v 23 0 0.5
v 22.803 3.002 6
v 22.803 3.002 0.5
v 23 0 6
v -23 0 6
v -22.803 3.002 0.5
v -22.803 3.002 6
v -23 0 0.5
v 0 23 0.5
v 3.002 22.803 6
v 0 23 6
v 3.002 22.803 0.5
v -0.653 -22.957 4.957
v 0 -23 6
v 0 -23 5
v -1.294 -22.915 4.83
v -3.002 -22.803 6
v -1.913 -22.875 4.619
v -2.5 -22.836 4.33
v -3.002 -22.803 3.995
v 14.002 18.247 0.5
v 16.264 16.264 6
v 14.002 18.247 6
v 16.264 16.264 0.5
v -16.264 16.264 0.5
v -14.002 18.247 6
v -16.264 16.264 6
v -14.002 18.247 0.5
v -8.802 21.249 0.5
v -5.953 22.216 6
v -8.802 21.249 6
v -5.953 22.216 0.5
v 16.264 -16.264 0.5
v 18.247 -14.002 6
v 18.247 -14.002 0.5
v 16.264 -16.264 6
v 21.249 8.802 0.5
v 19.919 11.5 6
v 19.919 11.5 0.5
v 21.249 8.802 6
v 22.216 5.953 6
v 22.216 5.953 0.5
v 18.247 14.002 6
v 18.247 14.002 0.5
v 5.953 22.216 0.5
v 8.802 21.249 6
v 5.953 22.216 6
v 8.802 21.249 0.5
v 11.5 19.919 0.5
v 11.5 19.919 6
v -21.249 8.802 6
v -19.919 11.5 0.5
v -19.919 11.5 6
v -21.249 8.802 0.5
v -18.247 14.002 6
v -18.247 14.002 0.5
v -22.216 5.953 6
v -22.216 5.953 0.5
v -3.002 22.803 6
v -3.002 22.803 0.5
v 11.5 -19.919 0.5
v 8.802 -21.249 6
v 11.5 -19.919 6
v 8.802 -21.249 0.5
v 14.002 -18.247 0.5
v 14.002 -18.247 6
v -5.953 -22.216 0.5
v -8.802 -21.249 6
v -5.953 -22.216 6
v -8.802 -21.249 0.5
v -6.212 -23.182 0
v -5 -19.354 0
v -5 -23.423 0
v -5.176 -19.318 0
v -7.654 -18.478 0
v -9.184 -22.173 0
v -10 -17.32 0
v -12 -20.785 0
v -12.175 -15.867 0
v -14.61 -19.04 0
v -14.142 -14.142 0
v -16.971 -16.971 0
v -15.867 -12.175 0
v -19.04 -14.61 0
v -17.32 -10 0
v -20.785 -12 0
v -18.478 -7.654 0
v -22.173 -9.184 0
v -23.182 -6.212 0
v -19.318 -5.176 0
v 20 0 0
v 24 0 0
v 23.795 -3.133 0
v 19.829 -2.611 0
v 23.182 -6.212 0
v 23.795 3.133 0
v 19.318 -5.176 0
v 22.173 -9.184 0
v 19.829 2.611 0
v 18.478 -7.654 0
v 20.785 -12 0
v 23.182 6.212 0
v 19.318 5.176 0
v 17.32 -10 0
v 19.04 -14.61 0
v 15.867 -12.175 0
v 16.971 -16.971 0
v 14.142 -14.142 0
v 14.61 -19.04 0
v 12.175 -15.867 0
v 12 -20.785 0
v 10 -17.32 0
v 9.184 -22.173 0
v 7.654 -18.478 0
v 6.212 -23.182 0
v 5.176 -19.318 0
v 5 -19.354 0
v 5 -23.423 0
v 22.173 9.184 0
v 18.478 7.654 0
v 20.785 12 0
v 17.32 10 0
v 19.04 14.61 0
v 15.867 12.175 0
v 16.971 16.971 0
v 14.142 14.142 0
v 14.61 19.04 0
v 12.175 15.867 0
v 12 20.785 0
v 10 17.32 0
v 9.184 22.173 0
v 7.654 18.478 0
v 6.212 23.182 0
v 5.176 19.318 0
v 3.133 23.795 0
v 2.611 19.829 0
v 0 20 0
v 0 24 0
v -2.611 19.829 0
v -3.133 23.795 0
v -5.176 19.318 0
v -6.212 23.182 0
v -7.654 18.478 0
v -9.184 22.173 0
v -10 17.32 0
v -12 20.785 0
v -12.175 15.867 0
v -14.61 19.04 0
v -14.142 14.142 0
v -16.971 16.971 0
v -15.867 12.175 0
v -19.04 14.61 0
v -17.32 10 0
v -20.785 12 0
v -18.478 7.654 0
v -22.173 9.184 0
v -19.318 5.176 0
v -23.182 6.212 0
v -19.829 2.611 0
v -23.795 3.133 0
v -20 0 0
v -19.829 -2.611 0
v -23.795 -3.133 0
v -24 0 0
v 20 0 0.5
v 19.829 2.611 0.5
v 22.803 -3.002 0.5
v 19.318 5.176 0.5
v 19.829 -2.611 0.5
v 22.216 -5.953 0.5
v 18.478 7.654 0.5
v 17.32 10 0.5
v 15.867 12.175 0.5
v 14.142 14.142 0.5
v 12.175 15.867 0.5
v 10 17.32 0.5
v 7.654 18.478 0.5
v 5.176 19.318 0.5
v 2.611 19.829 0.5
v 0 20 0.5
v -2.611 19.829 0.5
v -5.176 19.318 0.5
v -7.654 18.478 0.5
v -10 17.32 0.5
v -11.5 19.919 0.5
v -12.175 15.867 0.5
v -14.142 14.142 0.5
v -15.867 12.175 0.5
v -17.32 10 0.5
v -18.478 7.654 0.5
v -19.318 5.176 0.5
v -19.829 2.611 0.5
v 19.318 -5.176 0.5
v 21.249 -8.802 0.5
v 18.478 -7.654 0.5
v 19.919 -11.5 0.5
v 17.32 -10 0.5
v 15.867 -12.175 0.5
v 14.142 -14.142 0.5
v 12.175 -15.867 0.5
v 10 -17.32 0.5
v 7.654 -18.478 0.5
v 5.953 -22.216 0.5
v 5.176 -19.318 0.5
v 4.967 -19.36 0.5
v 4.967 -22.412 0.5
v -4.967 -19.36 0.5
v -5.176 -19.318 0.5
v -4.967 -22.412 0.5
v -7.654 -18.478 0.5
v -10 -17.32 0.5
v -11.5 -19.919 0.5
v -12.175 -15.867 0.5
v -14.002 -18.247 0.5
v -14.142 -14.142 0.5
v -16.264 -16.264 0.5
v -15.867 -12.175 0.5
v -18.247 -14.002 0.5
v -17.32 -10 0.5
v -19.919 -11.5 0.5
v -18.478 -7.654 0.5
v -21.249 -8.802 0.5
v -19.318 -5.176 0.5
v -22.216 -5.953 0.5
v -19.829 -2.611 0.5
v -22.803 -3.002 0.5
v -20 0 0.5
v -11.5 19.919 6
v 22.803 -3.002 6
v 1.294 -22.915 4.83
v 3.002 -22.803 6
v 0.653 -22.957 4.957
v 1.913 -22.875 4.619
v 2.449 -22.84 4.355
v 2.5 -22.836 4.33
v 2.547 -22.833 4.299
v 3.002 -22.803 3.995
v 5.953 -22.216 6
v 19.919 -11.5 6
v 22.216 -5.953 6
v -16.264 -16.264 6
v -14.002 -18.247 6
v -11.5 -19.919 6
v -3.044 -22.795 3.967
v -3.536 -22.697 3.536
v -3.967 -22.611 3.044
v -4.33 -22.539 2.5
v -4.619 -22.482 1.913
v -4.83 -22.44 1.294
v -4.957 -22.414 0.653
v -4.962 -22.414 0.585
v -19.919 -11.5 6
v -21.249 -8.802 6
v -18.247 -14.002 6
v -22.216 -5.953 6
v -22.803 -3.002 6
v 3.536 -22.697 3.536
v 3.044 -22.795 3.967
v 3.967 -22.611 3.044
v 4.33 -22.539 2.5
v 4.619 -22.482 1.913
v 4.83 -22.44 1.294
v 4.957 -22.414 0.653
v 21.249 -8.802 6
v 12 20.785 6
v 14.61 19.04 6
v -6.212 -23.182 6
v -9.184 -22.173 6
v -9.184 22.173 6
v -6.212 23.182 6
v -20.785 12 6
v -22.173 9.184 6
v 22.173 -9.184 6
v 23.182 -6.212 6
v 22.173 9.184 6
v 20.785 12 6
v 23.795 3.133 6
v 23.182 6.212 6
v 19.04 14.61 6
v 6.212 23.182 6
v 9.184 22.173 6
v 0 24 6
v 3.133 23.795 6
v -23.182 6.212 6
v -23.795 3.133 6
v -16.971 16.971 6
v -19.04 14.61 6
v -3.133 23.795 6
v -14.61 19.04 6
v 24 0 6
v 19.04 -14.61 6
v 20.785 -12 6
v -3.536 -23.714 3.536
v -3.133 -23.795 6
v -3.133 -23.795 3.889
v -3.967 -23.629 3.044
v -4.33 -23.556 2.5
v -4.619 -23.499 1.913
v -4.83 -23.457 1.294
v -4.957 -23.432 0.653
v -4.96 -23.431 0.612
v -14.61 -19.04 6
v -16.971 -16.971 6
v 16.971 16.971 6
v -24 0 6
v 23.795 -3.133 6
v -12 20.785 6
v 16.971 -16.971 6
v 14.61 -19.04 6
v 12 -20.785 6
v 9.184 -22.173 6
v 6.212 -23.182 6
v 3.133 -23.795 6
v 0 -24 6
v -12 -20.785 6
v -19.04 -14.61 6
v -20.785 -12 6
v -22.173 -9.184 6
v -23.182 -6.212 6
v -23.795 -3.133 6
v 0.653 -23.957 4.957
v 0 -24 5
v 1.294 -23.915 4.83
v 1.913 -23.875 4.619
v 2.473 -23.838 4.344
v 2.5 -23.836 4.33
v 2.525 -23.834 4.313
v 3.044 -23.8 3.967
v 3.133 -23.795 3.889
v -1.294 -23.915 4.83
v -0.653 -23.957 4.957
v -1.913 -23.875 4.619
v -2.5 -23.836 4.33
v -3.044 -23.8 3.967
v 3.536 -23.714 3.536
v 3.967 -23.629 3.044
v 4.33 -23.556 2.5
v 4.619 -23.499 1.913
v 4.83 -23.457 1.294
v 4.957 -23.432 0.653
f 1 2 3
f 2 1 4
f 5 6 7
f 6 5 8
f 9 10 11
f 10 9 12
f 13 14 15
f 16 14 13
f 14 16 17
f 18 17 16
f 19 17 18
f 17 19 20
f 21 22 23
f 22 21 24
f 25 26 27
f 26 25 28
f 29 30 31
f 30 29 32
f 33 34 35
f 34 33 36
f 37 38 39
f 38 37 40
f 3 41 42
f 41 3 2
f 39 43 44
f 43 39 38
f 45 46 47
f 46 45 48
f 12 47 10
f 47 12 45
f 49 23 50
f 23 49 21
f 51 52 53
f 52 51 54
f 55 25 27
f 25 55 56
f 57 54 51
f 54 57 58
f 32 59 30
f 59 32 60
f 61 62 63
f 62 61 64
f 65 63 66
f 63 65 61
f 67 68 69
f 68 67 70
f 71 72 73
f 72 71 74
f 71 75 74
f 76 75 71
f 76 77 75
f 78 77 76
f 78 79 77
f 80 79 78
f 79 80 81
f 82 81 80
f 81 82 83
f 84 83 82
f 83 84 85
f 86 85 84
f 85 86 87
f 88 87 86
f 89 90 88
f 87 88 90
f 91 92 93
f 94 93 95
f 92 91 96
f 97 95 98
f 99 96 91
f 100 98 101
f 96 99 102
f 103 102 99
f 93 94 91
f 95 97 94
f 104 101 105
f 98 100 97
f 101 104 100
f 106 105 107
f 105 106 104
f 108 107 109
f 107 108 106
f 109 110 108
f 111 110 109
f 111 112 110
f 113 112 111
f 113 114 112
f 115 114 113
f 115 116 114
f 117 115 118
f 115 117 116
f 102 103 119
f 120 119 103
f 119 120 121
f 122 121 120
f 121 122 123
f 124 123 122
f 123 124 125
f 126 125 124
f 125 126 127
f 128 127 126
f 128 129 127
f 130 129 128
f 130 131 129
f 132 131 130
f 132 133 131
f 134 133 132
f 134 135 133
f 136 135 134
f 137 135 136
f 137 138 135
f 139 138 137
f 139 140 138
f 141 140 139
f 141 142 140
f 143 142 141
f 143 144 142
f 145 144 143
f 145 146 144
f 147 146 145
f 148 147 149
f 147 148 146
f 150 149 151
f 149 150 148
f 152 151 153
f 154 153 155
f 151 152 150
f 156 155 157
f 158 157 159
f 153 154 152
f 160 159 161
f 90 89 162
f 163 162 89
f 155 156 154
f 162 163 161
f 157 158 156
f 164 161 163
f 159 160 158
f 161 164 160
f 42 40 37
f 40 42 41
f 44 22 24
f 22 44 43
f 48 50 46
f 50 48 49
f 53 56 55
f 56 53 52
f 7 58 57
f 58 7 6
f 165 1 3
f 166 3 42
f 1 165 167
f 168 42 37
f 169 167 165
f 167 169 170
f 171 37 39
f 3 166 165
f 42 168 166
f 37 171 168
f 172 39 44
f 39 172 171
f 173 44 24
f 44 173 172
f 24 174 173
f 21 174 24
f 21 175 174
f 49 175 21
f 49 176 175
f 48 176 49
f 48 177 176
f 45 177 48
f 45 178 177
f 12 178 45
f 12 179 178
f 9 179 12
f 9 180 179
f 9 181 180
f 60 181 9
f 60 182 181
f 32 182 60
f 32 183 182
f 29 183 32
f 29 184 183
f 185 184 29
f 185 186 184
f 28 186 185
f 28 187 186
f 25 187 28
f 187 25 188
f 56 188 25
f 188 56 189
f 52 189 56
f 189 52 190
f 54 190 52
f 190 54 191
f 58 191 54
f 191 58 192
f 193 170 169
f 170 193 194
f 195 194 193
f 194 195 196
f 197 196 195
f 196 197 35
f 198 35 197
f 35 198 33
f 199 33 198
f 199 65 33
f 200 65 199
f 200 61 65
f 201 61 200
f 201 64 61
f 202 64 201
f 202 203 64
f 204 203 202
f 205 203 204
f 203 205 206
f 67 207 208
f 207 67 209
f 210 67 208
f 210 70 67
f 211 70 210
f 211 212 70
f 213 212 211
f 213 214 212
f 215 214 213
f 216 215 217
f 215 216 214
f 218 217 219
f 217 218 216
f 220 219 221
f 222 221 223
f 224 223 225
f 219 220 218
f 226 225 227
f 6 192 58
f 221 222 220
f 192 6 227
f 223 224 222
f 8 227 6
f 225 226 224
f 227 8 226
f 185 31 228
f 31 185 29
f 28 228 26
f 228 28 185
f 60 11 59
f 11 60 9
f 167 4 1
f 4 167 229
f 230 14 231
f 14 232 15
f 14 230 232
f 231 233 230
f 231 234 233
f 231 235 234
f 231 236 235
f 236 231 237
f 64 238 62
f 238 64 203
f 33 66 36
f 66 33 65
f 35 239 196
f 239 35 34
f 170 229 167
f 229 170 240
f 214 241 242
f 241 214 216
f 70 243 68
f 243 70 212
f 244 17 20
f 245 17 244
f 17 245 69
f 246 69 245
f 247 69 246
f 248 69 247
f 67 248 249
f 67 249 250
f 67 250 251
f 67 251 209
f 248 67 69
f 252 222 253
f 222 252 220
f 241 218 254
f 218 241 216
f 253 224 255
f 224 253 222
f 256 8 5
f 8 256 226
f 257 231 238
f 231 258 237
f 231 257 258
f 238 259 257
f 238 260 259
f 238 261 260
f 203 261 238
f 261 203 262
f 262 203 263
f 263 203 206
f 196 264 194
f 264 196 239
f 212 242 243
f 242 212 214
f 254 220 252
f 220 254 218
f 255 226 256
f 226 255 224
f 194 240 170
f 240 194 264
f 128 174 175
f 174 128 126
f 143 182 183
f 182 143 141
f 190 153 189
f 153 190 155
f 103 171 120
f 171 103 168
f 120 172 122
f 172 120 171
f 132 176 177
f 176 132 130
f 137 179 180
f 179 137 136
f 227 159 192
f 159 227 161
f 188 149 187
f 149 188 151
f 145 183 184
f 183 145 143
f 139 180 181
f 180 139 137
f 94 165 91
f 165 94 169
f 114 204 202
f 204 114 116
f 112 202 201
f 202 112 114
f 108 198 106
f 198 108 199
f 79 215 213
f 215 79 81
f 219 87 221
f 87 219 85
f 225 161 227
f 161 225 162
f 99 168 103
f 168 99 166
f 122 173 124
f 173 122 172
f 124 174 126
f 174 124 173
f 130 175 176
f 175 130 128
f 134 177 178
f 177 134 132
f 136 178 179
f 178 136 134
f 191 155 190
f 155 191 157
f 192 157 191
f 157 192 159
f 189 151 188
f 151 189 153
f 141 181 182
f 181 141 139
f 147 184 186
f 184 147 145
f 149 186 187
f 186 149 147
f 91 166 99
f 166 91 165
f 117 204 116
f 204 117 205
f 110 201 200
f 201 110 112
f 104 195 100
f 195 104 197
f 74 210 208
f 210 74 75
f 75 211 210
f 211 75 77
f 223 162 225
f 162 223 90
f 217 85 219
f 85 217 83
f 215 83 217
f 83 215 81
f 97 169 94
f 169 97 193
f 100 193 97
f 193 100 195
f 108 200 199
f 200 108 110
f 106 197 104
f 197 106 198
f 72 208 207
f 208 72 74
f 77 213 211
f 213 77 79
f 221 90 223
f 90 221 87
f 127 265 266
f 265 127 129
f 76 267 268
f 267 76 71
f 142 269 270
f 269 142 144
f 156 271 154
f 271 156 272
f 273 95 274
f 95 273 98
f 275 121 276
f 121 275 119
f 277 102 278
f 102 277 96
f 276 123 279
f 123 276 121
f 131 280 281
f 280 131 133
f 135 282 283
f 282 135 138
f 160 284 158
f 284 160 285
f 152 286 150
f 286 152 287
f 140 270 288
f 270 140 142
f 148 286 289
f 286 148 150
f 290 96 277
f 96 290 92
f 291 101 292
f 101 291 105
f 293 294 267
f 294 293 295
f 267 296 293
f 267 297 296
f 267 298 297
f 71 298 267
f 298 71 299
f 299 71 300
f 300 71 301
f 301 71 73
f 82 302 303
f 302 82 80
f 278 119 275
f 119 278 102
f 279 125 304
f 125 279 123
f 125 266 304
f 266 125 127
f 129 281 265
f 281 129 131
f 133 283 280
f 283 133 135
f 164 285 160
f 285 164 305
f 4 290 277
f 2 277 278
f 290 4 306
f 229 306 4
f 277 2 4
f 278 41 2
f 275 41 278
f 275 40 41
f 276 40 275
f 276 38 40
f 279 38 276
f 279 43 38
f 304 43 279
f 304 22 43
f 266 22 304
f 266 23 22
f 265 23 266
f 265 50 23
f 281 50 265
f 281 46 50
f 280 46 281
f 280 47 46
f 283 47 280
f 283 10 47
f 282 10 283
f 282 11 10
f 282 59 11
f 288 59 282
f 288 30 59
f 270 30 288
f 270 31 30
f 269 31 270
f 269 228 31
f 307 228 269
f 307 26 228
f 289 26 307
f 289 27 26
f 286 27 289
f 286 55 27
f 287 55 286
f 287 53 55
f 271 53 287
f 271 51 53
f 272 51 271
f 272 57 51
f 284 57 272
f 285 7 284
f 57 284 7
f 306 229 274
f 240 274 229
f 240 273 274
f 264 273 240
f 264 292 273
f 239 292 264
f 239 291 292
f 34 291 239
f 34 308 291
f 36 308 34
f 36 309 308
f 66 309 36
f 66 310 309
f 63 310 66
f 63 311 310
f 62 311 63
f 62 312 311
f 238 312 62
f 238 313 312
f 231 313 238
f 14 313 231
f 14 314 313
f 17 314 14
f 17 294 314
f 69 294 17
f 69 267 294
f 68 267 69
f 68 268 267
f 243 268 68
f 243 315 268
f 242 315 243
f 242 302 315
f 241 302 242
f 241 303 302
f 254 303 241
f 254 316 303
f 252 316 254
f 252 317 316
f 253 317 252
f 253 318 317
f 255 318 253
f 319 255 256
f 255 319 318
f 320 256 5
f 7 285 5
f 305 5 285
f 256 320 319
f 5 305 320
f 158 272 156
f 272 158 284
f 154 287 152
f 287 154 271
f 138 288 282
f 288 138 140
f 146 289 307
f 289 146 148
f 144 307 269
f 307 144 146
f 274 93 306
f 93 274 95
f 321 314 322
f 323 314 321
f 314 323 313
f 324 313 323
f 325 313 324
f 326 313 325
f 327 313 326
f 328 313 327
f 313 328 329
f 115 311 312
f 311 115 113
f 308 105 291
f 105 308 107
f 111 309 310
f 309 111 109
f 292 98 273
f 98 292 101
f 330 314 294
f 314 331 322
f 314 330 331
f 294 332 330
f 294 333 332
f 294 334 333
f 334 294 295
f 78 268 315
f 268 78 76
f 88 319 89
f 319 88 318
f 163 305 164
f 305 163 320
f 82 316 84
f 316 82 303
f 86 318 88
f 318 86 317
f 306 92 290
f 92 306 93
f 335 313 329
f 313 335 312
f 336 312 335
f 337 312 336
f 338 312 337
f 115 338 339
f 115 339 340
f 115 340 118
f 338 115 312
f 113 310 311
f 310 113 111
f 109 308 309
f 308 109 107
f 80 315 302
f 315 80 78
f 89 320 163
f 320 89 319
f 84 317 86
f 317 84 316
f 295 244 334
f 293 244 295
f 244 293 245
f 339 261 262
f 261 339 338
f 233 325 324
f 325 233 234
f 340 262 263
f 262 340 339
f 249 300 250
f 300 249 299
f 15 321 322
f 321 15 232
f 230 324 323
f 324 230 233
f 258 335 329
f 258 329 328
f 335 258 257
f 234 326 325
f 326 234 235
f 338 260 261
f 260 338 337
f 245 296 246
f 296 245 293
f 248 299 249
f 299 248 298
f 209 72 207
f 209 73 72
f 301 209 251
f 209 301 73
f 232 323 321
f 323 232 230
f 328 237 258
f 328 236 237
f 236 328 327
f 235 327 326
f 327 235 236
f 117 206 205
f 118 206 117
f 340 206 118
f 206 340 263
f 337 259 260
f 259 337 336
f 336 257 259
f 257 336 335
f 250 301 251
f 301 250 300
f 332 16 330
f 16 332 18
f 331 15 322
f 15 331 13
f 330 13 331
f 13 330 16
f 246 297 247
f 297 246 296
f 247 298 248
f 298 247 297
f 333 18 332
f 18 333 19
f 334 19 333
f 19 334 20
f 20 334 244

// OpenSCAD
// file: ../build_environments.scad
// build_environments.scad: modules to build level sections
//

module pool(diameter=10.0, wall_height=2.0, step_width=3.0, connections=[])
{
    difference() {
        union() {
        difference() {
            cylinder(h=0.5,r1=diameter+step_width,r2=diameter+step_width,$fn=48);
            translate([0,0,-0.1])
                cylinder(h=0.7,r1=diameter,r2=diameter,$fn=48);
        }
        difference() {
            cylinder(h=wall_height,r1=diameter+step_width+1.0,r2=diameter+step_width+1.0,$fn=48);
            translate([0,0,-0.1])
                cylinder(h=wall_height+0.2,r1=diameter+step_width,r2=diameter+step_width,$fn=48);
        }
        }
    
        for (c = connections)
        {
            rotate([0,90,0]) {
                angle = atan2(c[1],c[0]);
                rotate([-angle,0,0]) {
                    cylinder(h=diameter+5.0,r1=c[2],r2=c[2],$fn=48);
                }
            }
        }
    }
}

module straight(length=10.0, width=2.0, dy1=0.0, dy2=0.0, dz=0.0)
{
    dims = [0, 0, 0, 0, 0, (dz/length)];
    matrix = [
        [ 1, dims[0], dims[1], 0 ],
        [ dims[2], 1, dims[4], 0 ],
        [ dims[5], dims[3], 1, 0 ],
        [ 0, 0, 0, 1 ]
    ];
    multmatrix(matrix)
    difference() {
        translate([dy1,0,0])
        union() {
            rotate([0,90,0]) {
                difference() {
                    cylinder(h=(length-dy1-dy2),r1=width+1.0,r2=width+1.0,$fn=24);
                    translate([0,0,-0.1])
                        cylinder(h=(length-dy1-dy2+0.2),r1=width,r2=width,$fn=24);
                }
                difference() {
                    cylinder(h=1.0,r1=width+2.0,r2=width+2.0,$fn=24);
                    translate([0,0,-0.1])
                        cylinder(h=1.2,r1=width,r2=width,$fn=24);
                }
                translate([0,0,(length-dy1-dy2)-1.0]) {
                    difference() {
                        cylinder(h=1.0,r1=width+2.0,r2=width+2.0,$fn=24);
                        translate([0,0,-0.1])
                            cylinder(h=1.2,r1=width,r2=width,$fn=24);
                    }
                }
            }
        }
        translate([0,0,-(2*width+4.0)/2])
            cube([3*length,3*length,2*width+4.0],center=true);
    }
}

module curve(p0=[0,0], center=[0,0], dir=1, angle=0.0, width=2.0)
{
    radius = sqrt((p0[0]-center[0])*(p0[0]-center[0]) + (p0[1]-center[1])*(p0[1]-center[1]));
    if (dir == 0) {
        difference() {
            rotate([0,0,-90])
            difference() {
                rotate_extrude(angle = angle, convexity = 10, $fn=32)
                    translate([radius, 0, 0])
                        circle(r = width+1.0,$fn=24);
                rotate([0,0,-1.0])
                    rotate_extrude(angle = angle+2.0, convexity = 10, $fn=32)
                        translate([radius, 0, 0])
                            circle(r = width,$fn=24);
            }
            translate([0,0,-(2*width+4.0)/2])
                cube([5*radius,5*radius,2*width+4.0],center=true);
        }
    }
    else {
        difference() {
            rotate([0,0,90])
            difference() {
                rotate_extrude(angle = -angle, convexity = 10, $fn=32)
                    translate([radius, 0, 0])
                        circle(r = width+1.0,$fn=24);
                rotate([0,0,1.0])
                    rotate_extrude(angle = -angle-2.0, convexity = 10, $fn=32)
                        translate([radius, 0, 0])
                            circle(r = width,$fn=24);
            }
            translate([0,0,-(2*width+4.0)/2])
                cube([5*radius,5*radius,2*width+4.0],center=true);
        }
    }

}

// test pool
//pool(diameter=12.0000, wall_height=3.0000, step_width=3.0000, connections=[[0.0000,-26.0000,2.0000], [23.6074,0.0000,2.0000]]);

// test straight, slope
//straight(length=26.0000, width=2.0000, dy1=11.8322, dy2=6.7082, dz=0.0000);
//straight(length=29.1549, width=12.0000, dy1=0.0000, dy2=0.0000, dz=-15.0000);

// test curve
//curve(p0=[23.6074, 0.0000], center=[23.6074, 5.0000], dir=0, angle=60.1011, width=2.0000);
//curve(p0=[33.6426, 12.4219], center=[37.9771, 9.9295], dir=1, angle=120.4627, width=2.0000);
// main file
use <../build_environments.scad>;
pool(diameter=20.0000, wall_height=6.0000, step_width=3.0000, connections=[[0.0000,-52.0000,5.0000]]);
